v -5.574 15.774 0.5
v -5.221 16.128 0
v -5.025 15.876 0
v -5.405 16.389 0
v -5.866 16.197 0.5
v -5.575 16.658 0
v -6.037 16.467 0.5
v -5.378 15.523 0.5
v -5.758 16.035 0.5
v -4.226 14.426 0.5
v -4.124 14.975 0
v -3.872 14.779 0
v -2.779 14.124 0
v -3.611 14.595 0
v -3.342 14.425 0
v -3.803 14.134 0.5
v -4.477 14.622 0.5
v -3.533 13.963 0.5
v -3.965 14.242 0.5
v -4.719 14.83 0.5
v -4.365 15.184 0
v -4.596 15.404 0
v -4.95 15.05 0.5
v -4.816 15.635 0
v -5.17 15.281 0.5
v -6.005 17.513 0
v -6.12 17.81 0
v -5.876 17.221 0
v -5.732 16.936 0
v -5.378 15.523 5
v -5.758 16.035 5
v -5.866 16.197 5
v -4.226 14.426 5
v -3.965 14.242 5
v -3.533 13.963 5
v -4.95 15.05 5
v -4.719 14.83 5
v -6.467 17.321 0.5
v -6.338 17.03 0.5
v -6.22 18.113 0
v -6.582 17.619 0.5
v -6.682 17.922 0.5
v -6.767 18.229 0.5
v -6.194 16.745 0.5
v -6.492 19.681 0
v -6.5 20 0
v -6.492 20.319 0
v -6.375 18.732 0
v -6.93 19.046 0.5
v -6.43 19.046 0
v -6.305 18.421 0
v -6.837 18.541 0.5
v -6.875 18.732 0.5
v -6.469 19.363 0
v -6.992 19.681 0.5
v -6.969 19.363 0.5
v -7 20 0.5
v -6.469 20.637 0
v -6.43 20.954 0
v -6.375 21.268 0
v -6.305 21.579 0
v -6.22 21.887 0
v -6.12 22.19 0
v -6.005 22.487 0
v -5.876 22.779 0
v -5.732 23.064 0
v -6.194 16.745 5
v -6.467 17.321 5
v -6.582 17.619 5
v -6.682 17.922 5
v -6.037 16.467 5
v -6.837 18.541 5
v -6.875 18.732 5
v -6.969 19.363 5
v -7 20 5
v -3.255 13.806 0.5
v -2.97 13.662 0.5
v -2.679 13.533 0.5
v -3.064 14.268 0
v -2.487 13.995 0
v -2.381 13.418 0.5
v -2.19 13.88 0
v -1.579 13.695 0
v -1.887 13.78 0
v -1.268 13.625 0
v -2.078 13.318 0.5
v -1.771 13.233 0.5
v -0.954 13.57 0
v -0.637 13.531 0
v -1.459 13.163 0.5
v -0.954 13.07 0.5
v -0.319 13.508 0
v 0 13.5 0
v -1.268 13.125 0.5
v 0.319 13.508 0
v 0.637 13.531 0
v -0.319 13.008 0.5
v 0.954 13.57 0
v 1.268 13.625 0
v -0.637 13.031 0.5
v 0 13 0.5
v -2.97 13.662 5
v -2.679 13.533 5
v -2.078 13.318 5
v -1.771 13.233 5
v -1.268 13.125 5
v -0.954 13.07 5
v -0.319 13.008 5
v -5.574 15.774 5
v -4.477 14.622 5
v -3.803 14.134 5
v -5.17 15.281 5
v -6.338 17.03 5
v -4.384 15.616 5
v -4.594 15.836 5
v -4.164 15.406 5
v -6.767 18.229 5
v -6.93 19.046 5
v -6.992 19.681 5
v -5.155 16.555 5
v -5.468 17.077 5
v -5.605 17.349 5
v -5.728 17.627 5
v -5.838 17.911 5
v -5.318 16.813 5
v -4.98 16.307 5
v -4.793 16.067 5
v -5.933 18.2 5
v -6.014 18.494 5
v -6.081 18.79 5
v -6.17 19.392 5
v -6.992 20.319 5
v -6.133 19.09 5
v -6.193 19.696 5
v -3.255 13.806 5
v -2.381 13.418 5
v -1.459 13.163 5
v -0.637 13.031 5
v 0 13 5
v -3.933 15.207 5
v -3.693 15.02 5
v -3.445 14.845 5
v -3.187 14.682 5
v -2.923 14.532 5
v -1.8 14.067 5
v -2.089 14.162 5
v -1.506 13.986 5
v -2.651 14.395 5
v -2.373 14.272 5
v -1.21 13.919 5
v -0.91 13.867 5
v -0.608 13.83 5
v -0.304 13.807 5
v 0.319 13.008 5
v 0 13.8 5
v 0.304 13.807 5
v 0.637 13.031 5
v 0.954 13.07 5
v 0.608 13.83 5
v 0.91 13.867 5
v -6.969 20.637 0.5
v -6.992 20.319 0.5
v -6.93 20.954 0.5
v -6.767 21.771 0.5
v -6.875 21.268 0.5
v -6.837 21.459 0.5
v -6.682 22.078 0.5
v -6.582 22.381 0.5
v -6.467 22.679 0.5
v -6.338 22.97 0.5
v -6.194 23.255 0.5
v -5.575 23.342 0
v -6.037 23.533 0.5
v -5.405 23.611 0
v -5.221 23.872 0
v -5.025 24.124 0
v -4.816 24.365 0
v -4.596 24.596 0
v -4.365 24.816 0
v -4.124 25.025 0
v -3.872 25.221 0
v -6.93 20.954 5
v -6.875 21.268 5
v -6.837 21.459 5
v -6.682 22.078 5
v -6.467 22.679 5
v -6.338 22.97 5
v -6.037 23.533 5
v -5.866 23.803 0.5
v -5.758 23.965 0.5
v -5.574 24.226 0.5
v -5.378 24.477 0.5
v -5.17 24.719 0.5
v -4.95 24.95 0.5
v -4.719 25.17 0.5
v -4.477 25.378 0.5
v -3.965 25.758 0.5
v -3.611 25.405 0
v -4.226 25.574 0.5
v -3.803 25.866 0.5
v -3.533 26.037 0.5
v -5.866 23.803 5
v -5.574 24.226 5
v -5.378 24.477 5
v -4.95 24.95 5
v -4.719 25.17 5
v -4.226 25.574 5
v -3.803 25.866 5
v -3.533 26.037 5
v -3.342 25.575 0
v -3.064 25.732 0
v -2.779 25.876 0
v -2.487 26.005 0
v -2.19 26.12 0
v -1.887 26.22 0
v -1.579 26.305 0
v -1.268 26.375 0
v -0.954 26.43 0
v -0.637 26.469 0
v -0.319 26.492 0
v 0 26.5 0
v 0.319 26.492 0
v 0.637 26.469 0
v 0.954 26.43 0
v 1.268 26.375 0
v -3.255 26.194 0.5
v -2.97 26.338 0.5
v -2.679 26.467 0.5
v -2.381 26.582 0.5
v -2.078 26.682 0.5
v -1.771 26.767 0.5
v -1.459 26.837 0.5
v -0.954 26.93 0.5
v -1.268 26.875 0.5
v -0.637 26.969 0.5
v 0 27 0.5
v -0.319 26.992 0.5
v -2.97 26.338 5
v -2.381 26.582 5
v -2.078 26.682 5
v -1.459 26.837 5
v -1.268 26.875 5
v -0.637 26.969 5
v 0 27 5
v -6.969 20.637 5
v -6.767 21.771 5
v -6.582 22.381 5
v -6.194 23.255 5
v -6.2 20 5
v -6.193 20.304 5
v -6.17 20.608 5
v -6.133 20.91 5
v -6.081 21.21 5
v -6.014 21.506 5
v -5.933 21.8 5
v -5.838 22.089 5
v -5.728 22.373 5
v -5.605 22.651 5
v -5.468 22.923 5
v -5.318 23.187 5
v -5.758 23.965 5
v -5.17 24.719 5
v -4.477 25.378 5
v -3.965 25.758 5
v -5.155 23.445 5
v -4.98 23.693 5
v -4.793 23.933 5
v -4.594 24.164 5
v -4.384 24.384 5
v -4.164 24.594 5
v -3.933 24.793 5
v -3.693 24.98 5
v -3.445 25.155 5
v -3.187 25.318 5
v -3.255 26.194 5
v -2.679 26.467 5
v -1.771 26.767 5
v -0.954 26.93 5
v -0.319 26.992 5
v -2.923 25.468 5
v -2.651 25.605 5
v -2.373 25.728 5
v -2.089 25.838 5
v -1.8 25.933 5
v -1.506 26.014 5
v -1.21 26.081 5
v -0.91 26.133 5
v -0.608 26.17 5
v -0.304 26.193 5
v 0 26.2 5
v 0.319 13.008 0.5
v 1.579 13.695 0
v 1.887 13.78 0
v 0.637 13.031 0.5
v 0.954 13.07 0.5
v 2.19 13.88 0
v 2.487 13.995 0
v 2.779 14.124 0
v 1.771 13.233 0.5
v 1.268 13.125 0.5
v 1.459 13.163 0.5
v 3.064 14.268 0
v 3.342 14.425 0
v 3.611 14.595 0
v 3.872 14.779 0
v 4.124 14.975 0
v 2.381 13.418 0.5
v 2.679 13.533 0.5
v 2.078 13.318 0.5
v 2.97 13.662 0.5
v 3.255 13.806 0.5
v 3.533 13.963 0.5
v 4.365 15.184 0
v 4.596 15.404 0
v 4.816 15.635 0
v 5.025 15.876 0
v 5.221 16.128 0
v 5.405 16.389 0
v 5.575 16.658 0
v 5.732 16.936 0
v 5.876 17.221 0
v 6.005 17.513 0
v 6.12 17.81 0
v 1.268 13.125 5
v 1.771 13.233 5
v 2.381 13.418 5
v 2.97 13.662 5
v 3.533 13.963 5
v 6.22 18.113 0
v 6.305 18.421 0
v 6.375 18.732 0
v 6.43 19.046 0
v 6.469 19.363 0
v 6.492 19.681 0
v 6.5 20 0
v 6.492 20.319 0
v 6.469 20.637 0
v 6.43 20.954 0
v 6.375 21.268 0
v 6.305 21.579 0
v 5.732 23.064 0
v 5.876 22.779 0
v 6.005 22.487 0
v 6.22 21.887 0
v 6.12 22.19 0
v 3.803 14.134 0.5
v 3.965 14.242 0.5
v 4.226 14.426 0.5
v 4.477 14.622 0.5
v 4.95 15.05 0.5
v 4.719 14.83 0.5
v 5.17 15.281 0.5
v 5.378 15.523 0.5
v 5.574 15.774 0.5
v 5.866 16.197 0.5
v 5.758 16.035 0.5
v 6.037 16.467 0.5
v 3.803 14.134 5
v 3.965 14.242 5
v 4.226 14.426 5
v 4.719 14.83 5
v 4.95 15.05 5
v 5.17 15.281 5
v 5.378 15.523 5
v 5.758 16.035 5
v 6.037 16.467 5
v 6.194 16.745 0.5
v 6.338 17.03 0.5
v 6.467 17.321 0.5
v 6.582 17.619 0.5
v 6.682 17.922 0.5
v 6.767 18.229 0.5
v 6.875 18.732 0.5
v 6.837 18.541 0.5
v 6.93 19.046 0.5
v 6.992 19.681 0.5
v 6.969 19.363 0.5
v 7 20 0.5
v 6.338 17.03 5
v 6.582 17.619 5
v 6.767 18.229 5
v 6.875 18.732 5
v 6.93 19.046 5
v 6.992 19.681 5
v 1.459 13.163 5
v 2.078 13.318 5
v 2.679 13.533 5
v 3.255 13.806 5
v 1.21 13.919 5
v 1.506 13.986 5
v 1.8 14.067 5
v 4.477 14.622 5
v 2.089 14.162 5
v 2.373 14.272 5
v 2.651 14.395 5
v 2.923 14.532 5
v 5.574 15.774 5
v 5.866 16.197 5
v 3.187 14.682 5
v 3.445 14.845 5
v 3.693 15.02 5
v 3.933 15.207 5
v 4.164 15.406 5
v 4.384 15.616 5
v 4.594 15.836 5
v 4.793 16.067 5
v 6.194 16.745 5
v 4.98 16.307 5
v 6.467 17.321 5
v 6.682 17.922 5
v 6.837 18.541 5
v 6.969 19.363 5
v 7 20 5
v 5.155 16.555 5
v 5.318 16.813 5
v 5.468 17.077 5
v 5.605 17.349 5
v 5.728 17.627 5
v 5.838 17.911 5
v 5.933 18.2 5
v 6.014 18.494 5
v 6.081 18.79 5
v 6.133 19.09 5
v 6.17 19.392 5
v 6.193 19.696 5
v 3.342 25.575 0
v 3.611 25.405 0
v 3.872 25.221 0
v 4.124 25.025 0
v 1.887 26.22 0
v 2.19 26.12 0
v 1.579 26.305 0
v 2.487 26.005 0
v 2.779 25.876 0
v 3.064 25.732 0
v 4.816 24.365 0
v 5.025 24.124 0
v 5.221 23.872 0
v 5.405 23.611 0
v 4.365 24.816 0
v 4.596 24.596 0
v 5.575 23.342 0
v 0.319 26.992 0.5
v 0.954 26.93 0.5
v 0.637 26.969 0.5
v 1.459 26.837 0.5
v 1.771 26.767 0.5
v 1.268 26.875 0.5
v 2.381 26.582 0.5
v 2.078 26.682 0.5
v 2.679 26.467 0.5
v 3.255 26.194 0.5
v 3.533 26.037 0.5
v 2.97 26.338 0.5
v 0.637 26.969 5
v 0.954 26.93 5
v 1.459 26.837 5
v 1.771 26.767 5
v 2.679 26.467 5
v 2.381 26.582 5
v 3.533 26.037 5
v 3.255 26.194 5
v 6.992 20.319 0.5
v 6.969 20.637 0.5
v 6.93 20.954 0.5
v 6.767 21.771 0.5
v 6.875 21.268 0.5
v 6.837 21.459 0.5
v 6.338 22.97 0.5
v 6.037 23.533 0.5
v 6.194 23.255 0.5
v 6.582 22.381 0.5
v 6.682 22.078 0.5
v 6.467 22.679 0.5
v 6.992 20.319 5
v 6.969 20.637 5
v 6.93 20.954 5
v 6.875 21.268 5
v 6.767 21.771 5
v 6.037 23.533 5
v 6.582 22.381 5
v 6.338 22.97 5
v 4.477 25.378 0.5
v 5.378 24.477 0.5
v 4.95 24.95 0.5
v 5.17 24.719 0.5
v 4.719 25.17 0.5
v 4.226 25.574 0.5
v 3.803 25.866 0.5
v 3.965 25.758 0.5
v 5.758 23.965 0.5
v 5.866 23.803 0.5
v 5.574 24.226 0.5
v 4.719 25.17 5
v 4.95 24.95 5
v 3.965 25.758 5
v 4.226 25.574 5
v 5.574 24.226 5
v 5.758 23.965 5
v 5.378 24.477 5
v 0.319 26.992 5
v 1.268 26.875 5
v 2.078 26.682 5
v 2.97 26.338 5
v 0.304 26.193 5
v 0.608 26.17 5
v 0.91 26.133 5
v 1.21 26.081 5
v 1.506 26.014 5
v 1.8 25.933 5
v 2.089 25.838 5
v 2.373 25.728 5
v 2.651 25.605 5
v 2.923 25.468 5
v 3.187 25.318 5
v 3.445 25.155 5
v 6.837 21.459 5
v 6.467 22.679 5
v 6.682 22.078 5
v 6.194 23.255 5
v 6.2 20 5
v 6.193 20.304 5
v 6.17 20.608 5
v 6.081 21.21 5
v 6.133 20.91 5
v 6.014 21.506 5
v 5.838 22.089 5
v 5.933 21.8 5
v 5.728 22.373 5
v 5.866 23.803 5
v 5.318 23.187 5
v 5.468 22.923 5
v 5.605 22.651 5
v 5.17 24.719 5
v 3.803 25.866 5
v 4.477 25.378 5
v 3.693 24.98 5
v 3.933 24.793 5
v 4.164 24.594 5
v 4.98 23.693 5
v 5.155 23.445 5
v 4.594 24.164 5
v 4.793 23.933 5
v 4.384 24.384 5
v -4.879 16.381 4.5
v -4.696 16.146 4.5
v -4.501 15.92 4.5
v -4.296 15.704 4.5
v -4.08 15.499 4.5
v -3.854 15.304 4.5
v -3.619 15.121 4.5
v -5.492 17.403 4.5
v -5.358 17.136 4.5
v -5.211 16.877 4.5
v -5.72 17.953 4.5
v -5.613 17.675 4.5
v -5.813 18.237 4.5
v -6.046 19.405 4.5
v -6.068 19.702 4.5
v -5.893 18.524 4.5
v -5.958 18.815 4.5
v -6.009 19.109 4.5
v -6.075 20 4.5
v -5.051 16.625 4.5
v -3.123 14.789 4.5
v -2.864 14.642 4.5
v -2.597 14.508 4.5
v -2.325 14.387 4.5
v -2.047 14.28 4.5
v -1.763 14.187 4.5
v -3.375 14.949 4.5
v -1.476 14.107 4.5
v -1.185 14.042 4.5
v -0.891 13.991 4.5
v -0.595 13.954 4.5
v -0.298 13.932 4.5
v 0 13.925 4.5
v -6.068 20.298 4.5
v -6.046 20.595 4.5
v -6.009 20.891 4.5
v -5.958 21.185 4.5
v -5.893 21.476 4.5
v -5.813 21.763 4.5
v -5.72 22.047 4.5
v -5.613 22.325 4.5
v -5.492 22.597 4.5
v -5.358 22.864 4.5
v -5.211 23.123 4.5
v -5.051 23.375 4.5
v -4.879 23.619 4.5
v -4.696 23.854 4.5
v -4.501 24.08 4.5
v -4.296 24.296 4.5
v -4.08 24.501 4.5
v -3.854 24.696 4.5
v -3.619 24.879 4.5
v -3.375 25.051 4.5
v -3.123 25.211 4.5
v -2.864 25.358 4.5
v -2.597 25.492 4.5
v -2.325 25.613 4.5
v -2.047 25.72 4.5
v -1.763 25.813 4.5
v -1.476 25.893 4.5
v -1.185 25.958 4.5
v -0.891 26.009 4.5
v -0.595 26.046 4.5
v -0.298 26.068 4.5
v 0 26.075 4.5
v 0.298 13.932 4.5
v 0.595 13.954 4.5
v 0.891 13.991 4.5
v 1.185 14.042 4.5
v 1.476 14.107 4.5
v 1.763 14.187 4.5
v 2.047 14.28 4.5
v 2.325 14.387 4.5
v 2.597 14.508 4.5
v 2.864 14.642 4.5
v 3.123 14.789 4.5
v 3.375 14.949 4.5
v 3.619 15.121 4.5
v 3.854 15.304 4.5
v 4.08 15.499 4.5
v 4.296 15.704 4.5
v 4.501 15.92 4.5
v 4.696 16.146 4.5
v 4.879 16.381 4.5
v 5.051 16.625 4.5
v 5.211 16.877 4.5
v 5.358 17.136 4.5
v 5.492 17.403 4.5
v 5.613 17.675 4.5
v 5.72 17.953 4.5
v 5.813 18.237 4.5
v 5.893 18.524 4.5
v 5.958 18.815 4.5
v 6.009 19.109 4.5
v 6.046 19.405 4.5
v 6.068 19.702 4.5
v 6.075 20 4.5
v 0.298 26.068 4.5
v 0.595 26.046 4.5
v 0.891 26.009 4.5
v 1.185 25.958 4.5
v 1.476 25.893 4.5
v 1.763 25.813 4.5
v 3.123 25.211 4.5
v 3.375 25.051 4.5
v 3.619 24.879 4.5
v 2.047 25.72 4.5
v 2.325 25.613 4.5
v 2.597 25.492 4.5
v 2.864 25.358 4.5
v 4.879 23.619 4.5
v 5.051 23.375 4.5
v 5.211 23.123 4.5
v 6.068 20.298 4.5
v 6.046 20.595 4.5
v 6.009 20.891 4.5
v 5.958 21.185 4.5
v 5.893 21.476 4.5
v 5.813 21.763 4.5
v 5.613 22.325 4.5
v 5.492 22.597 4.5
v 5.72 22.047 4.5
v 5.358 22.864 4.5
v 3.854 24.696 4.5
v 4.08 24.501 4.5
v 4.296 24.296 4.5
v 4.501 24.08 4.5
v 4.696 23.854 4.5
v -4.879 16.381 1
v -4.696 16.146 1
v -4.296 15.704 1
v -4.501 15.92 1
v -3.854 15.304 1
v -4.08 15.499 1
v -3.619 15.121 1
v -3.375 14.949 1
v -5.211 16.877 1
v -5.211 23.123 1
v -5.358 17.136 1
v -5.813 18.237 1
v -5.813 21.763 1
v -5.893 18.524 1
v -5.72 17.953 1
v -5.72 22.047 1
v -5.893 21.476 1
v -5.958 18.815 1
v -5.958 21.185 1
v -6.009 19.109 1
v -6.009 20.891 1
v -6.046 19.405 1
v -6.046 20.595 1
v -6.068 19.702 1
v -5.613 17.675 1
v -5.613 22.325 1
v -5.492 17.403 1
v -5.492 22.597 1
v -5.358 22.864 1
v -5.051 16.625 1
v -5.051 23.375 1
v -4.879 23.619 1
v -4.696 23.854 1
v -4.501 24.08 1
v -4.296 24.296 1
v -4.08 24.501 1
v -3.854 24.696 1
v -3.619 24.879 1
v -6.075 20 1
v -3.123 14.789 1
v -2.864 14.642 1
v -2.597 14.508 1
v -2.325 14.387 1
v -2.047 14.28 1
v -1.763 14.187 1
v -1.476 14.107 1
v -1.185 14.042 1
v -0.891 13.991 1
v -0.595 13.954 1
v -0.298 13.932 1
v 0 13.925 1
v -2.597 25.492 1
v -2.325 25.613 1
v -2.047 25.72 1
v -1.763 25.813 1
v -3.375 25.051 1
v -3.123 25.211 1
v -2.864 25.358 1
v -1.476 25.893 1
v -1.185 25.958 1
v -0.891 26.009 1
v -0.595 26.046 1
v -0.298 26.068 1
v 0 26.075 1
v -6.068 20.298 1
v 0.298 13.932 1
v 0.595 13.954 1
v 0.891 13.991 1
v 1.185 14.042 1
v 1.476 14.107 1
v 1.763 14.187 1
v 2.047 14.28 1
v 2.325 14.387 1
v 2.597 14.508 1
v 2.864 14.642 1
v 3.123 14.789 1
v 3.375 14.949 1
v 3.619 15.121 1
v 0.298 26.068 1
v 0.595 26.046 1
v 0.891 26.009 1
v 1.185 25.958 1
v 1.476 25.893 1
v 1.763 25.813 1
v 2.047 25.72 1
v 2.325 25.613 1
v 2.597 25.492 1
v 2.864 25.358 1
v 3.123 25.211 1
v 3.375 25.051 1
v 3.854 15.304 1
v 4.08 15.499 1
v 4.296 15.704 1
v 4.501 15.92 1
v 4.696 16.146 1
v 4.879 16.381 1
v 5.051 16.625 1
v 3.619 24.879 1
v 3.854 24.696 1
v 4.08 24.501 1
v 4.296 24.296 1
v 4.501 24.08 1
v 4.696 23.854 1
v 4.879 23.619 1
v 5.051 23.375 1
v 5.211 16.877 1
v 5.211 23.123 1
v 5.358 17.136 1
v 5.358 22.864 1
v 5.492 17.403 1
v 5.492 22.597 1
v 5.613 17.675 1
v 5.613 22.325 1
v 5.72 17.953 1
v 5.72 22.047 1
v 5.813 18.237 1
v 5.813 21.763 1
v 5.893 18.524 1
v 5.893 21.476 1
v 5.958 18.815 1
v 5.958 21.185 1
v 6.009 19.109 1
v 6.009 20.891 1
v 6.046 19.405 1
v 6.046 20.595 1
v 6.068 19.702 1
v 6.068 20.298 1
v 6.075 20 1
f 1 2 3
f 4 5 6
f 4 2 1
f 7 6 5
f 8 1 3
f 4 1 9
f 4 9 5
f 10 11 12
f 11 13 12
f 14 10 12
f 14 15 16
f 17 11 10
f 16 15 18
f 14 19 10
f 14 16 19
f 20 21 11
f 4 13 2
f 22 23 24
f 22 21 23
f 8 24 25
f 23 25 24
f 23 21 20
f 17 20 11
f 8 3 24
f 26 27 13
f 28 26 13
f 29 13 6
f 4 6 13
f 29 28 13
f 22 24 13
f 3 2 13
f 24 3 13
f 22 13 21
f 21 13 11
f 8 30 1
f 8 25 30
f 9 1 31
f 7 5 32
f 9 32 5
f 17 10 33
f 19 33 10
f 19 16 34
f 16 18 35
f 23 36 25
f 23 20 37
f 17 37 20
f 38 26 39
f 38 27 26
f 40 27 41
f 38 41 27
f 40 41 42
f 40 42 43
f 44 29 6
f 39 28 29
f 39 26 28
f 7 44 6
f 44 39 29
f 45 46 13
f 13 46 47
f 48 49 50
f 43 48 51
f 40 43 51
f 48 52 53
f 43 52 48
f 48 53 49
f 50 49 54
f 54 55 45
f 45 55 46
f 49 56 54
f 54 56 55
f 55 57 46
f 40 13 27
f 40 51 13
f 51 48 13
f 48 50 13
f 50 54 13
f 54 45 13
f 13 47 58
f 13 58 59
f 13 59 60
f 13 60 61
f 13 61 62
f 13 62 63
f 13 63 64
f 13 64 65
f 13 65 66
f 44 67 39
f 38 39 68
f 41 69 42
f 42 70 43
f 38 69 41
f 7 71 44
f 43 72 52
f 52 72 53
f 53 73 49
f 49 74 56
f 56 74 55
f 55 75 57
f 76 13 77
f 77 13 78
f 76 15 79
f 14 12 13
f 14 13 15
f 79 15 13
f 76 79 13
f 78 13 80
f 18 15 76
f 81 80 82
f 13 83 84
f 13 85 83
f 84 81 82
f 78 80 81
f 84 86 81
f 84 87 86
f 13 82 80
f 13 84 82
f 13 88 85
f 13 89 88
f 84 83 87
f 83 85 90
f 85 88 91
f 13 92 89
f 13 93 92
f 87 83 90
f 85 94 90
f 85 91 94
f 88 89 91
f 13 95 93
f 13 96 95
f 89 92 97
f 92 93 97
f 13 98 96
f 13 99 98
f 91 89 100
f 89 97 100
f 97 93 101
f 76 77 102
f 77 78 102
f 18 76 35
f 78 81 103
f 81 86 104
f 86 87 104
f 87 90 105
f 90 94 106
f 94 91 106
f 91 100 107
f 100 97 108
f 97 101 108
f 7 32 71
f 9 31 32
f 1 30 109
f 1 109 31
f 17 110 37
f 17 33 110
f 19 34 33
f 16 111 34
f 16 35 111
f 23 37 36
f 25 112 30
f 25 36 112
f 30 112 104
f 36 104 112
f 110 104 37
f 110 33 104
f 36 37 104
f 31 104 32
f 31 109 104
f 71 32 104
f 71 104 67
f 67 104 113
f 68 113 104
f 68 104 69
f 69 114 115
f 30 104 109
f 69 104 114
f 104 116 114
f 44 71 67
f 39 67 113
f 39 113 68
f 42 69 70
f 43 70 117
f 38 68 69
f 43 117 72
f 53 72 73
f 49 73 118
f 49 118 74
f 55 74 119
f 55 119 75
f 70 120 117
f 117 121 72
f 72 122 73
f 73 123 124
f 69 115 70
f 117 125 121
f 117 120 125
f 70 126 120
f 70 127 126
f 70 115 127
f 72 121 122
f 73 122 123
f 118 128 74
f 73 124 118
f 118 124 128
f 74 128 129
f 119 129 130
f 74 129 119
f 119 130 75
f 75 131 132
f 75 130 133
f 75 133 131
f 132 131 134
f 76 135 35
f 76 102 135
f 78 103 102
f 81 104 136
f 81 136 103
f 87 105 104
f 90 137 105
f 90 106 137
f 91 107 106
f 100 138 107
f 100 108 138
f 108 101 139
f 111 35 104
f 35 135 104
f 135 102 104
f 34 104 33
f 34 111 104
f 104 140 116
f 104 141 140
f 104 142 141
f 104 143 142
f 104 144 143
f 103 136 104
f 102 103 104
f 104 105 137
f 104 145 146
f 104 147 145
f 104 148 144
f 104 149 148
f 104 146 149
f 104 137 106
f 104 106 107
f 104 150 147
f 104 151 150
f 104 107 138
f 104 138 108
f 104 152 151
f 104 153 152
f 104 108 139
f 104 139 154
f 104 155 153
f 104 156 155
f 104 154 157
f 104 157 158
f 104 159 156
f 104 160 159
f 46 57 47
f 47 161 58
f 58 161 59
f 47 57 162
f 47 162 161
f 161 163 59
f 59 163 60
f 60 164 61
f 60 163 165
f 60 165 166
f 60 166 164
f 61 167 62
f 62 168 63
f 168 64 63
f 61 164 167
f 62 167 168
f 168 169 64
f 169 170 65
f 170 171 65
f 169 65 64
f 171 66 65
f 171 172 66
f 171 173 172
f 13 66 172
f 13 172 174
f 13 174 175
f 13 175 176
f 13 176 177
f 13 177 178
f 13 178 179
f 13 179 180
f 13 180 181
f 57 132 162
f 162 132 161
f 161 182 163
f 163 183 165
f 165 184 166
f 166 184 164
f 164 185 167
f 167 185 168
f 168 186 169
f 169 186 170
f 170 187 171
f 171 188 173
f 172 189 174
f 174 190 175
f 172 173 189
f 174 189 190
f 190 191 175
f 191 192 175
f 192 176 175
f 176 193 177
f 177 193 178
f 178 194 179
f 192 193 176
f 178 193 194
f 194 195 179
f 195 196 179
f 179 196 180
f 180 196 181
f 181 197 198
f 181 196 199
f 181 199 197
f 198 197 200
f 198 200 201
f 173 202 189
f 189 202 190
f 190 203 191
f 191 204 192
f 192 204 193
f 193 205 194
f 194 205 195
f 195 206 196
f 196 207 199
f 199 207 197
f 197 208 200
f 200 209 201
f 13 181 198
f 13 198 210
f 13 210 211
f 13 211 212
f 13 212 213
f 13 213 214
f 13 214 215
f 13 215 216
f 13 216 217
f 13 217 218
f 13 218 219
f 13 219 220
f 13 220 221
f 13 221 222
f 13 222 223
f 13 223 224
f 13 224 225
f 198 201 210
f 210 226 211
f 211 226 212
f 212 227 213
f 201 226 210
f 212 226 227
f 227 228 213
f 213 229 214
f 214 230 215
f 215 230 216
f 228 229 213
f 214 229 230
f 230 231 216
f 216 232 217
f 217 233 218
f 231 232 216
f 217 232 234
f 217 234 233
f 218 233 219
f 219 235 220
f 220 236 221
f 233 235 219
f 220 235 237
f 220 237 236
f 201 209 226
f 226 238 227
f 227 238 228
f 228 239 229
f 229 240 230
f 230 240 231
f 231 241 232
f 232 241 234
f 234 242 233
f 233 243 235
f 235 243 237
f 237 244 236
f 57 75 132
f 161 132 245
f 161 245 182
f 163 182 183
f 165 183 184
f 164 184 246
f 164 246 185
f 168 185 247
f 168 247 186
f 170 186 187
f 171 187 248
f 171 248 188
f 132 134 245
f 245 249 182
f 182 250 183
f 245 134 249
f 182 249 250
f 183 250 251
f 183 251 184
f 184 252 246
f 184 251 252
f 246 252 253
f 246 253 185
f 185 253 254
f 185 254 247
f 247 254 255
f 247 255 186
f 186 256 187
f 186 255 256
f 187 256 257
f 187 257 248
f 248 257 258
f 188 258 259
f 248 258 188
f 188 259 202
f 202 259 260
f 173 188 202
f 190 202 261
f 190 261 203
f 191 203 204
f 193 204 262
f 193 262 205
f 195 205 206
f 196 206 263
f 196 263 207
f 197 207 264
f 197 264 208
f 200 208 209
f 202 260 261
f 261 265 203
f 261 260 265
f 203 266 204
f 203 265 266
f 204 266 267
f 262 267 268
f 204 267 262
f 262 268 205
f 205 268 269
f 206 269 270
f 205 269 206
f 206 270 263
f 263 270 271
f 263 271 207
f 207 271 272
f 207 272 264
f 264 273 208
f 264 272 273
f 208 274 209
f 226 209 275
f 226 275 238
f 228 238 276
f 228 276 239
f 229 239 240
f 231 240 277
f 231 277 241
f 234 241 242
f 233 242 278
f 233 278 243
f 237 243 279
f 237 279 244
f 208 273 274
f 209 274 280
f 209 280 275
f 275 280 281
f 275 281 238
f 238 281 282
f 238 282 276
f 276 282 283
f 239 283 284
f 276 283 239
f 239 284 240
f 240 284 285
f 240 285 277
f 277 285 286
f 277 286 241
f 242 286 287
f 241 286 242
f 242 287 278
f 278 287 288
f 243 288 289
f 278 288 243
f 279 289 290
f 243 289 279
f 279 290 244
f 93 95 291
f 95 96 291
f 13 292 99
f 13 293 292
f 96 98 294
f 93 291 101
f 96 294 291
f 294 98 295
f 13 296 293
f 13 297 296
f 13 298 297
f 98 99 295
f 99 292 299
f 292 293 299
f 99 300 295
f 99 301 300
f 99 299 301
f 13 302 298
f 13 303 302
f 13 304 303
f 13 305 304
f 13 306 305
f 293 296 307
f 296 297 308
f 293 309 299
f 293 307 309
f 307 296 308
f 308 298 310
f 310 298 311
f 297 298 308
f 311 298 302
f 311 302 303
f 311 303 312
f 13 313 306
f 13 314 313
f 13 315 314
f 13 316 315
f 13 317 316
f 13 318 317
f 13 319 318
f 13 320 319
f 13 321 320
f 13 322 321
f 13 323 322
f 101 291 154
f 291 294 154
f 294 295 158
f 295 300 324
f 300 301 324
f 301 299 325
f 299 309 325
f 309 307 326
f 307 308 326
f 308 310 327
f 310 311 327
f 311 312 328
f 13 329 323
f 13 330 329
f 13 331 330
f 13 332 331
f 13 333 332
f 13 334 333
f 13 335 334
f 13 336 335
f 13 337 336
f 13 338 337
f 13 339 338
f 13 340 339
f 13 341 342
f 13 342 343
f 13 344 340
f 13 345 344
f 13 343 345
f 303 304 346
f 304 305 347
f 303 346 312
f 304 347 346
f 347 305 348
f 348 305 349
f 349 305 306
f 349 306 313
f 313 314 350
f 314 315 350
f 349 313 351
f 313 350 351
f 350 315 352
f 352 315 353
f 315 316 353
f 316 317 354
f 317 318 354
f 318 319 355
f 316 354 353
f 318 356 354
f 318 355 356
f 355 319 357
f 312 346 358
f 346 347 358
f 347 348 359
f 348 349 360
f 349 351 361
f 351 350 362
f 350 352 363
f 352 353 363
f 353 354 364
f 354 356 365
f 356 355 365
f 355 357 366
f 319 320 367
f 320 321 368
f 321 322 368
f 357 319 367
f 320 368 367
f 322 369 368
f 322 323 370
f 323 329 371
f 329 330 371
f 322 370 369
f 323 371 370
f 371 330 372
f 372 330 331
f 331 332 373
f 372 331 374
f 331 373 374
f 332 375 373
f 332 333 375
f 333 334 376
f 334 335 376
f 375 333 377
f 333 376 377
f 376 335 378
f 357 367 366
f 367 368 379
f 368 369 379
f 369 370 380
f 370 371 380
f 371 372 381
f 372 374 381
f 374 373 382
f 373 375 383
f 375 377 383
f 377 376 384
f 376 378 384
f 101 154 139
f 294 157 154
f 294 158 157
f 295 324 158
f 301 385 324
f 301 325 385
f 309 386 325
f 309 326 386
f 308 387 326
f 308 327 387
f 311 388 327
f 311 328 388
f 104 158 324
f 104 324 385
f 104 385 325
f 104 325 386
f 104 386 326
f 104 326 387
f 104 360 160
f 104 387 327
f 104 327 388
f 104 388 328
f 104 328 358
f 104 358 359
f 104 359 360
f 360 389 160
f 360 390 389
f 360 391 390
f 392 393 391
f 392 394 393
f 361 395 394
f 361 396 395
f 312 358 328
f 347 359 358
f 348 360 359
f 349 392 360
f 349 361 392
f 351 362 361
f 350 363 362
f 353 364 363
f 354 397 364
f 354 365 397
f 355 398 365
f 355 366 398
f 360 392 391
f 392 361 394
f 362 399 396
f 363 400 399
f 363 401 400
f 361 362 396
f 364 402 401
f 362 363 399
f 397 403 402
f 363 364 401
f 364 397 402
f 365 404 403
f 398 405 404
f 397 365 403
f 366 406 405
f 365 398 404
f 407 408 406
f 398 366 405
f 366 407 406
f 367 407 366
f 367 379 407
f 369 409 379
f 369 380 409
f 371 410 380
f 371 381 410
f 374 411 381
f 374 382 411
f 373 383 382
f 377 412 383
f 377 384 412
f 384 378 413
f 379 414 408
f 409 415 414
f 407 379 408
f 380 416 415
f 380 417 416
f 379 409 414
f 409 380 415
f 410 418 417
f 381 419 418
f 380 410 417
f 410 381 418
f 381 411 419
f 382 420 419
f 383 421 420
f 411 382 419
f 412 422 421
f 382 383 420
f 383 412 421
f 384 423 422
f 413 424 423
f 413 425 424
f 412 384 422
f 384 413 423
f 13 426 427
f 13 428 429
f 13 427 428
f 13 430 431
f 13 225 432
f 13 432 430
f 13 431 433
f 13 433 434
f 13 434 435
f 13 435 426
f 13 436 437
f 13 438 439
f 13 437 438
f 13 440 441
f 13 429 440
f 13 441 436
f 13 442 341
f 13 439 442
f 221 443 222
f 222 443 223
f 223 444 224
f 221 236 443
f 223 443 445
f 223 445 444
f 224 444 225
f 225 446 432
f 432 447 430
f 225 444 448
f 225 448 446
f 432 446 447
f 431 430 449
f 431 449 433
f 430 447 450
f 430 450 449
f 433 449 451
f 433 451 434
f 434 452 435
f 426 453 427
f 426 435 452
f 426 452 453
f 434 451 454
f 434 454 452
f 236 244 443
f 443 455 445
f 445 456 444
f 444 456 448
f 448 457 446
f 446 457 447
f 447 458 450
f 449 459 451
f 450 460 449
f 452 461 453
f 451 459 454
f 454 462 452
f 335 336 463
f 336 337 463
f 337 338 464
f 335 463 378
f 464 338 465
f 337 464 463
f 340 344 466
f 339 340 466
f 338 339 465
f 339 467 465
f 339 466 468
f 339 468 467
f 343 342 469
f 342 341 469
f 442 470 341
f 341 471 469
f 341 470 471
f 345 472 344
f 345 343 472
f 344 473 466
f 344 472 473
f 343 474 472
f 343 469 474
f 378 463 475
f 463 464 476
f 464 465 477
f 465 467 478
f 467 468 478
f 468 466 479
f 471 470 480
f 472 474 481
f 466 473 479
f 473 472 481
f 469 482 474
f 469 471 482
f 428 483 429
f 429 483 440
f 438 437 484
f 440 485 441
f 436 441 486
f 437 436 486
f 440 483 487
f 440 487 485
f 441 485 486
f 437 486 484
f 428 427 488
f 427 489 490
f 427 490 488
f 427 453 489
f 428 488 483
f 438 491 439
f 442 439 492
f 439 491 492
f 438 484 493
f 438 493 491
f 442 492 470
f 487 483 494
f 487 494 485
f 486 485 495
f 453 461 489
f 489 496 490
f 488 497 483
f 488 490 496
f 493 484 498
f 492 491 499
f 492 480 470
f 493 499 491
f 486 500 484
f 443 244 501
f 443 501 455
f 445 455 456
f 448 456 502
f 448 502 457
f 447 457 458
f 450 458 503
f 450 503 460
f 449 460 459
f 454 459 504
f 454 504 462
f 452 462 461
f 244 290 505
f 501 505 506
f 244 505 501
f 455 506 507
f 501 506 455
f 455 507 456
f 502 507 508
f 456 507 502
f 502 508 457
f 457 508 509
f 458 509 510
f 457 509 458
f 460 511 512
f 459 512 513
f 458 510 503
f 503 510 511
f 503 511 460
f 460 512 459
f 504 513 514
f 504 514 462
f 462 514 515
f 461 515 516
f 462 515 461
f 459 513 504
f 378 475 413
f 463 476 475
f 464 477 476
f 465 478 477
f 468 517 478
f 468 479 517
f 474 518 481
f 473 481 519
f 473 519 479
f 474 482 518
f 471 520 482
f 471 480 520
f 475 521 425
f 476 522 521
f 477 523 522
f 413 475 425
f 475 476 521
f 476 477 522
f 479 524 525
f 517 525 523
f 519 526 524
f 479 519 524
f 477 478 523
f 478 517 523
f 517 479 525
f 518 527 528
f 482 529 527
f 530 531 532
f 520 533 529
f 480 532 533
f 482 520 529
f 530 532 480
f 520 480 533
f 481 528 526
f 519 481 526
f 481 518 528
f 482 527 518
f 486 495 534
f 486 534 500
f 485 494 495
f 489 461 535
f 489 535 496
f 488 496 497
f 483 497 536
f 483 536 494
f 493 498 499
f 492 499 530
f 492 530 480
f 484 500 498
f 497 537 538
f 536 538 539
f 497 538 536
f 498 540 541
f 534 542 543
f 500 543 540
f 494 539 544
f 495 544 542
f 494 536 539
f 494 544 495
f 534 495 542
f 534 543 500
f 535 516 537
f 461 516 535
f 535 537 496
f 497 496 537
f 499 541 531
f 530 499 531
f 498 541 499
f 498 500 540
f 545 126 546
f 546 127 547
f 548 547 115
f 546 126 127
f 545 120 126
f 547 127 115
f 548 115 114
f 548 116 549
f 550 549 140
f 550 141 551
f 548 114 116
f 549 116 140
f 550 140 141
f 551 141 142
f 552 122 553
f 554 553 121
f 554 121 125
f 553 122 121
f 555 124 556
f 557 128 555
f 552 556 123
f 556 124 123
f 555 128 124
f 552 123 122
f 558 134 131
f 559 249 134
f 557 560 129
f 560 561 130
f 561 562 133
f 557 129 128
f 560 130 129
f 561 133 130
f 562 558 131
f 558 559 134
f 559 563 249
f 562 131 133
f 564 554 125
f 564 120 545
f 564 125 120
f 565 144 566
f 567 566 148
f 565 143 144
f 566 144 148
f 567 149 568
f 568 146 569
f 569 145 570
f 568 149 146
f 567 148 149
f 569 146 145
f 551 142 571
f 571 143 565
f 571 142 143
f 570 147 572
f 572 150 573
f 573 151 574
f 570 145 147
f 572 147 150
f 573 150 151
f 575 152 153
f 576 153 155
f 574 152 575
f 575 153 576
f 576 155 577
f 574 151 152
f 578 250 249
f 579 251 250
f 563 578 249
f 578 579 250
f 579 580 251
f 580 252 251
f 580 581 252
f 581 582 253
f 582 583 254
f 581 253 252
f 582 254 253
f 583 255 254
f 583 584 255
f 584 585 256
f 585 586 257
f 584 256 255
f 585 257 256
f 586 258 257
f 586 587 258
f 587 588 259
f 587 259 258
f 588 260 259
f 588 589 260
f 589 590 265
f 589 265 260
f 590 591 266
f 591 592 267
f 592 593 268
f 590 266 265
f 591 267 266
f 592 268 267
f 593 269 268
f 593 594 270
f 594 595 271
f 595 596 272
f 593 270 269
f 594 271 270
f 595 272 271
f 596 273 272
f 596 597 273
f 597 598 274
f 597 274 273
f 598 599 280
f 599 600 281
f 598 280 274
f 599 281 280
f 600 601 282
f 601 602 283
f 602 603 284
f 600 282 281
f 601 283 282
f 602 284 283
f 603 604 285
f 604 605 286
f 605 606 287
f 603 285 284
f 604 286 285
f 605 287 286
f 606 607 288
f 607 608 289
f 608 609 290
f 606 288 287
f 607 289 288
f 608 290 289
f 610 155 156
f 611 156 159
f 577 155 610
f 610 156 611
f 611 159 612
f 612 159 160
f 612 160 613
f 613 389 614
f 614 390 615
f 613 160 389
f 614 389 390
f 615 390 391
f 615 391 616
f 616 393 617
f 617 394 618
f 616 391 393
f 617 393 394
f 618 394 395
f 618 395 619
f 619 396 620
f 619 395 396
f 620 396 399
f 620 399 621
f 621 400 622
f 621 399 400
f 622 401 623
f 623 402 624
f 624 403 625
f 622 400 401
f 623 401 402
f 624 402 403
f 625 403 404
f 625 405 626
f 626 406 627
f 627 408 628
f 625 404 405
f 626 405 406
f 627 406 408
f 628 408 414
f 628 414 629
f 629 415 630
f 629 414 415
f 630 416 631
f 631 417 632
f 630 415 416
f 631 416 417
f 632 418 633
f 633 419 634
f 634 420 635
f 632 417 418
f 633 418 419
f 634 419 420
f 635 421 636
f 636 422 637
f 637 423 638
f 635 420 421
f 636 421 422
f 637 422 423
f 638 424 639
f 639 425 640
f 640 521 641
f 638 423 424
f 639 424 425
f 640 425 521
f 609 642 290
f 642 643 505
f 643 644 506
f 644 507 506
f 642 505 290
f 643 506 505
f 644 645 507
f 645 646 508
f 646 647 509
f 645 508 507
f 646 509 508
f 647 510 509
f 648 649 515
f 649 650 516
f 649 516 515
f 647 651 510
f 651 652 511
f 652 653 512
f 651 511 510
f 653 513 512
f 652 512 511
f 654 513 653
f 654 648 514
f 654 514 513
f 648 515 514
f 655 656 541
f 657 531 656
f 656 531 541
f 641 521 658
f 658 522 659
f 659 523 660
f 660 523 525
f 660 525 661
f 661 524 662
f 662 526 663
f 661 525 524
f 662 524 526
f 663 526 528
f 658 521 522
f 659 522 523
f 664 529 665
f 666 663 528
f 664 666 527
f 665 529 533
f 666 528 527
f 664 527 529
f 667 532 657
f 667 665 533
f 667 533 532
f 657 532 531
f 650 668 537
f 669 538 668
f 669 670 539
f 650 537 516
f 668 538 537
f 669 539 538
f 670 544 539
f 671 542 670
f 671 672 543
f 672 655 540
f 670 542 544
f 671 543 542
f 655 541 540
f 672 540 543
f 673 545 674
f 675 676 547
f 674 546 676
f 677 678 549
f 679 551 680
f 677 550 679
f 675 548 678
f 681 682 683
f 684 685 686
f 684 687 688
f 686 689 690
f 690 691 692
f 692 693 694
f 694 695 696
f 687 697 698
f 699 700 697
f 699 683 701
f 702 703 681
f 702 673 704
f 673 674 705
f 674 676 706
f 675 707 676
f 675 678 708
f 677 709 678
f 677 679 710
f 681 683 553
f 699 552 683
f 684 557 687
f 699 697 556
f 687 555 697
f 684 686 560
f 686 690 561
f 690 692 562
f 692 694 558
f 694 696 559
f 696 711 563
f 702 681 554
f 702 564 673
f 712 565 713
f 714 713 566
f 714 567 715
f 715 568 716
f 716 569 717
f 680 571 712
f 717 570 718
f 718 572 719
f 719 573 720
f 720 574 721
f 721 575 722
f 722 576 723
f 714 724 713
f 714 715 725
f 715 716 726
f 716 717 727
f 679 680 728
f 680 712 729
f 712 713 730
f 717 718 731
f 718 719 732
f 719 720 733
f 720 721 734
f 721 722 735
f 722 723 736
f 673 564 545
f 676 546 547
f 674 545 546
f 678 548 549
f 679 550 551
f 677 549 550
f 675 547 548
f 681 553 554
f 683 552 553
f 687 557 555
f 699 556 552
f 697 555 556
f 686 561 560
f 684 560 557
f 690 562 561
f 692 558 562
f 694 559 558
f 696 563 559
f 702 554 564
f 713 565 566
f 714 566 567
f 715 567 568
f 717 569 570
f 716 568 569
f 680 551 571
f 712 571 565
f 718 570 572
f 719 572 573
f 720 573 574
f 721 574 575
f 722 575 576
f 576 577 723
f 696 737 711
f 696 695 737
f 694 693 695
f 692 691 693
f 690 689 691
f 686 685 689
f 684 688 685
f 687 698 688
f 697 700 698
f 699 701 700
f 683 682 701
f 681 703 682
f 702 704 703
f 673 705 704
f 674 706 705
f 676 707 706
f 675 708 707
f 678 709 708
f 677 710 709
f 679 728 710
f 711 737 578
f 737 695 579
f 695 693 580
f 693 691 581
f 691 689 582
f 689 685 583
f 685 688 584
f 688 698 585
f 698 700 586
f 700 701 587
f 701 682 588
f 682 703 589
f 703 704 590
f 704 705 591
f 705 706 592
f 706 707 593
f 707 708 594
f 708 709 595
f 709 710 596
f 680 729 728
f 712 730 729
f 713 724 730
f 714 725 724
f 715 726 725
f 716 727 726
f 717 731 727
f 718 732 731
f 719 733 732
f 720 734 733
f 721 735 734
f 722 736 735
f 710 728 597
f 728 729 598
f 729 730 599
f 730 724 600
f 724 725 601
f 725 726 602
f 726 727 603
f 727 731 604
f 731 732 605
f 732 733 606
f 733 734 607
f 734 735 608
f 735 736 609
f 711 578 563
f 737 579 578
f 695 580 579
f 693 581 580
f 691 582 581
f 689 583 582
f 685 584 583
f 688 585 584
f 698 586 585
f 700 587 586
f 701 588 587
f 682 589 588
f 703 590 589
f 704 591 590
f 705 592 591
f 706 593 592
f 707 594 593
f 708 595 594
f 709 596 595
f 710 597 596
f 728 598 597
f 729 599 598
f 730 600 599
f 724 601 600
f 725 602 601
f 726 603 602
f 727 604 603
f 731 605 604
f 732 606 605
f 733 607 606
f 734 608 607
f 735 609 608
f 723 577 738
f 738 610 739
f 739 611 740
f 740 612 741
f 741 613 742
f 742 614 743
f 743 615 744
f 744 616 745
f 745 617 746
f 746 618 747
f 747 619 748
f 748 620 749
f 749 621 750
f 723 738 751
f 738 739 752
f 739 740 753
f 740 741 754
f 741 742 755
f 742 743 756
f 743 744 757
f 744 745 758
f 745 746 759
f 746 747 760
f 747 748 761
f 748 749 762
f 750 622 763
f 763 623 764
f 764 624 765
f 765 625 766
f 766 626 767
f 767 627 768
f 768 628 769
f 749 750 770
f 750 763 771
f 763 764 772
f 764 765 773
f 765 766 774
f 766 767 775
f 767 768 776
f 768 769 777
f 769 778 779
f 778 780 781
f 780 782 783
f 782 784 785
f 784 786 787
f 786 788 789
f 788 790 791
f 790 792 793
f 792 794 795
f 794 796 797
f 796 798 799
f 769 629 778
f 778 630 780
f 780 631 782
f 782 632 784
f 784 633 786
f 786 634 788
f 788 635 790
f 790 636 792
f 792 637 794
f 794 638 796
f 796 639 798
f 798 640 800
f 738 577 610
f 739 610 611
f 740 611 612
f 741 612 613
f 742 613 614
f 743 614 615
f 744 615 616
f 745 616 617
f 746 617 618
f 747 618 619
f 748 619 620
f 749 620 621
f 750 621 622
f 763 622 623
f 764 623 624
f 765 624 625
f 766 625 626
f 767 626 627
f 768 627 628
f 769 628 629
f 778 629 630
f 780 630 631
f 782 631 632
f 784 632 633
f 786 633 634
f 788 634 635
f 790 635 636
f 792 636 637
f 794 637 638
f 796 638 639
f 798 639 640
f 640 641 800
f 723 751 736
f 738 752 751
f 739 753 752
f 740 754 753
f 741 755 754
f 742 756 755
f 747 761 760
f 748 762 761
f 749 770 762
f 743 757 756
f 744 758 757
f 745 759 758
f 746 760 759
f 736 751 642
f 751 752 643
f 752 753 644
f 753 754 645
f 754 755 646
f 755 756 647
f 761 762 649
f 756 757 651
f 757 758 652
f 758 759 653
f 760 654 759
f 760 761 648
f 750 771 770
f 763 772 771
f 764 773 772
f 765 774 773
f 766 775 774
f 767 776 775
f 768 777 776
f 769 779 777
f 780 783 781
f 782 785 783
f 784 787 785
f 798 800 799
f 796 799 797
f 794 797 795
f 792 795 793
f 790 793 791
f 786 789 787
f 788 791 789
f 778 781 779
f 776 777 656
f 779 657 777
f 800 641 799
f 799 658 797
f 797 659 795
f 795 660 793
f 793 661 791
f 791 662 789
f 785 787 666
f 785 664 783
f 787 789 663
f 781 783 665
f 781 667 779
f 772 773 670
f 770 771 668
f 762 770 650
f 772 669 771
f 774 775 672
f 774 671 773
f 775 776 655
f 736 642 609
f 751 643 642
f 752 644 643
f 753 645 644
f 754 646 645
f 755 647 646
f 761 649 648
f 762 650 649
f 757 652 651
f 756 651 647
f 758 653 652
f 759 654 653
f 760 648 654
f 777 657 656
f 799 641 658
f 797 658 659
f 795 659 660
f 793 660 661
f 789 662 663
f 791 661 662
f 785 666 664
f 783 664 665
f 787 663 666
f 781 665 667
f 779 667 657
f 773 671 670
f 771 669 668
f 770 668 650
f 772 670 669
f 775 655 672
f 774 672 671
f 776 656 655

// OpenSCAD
translate([0,20,0])
difference() {
    minkowski() {
        cylinder(d=14-1,h=0.5+4,$fn=128);
        cylinder(d1=0,d2=1,h=0.5,$fn=16);
    }
    translate([0,0,4.5])
    cylinder(d1=12.15,d2=12.4,h=0.5,$fn=128);
    translate([0,0,1])
    cylinder(d=12.15,h=4,$fn=128);
    }
